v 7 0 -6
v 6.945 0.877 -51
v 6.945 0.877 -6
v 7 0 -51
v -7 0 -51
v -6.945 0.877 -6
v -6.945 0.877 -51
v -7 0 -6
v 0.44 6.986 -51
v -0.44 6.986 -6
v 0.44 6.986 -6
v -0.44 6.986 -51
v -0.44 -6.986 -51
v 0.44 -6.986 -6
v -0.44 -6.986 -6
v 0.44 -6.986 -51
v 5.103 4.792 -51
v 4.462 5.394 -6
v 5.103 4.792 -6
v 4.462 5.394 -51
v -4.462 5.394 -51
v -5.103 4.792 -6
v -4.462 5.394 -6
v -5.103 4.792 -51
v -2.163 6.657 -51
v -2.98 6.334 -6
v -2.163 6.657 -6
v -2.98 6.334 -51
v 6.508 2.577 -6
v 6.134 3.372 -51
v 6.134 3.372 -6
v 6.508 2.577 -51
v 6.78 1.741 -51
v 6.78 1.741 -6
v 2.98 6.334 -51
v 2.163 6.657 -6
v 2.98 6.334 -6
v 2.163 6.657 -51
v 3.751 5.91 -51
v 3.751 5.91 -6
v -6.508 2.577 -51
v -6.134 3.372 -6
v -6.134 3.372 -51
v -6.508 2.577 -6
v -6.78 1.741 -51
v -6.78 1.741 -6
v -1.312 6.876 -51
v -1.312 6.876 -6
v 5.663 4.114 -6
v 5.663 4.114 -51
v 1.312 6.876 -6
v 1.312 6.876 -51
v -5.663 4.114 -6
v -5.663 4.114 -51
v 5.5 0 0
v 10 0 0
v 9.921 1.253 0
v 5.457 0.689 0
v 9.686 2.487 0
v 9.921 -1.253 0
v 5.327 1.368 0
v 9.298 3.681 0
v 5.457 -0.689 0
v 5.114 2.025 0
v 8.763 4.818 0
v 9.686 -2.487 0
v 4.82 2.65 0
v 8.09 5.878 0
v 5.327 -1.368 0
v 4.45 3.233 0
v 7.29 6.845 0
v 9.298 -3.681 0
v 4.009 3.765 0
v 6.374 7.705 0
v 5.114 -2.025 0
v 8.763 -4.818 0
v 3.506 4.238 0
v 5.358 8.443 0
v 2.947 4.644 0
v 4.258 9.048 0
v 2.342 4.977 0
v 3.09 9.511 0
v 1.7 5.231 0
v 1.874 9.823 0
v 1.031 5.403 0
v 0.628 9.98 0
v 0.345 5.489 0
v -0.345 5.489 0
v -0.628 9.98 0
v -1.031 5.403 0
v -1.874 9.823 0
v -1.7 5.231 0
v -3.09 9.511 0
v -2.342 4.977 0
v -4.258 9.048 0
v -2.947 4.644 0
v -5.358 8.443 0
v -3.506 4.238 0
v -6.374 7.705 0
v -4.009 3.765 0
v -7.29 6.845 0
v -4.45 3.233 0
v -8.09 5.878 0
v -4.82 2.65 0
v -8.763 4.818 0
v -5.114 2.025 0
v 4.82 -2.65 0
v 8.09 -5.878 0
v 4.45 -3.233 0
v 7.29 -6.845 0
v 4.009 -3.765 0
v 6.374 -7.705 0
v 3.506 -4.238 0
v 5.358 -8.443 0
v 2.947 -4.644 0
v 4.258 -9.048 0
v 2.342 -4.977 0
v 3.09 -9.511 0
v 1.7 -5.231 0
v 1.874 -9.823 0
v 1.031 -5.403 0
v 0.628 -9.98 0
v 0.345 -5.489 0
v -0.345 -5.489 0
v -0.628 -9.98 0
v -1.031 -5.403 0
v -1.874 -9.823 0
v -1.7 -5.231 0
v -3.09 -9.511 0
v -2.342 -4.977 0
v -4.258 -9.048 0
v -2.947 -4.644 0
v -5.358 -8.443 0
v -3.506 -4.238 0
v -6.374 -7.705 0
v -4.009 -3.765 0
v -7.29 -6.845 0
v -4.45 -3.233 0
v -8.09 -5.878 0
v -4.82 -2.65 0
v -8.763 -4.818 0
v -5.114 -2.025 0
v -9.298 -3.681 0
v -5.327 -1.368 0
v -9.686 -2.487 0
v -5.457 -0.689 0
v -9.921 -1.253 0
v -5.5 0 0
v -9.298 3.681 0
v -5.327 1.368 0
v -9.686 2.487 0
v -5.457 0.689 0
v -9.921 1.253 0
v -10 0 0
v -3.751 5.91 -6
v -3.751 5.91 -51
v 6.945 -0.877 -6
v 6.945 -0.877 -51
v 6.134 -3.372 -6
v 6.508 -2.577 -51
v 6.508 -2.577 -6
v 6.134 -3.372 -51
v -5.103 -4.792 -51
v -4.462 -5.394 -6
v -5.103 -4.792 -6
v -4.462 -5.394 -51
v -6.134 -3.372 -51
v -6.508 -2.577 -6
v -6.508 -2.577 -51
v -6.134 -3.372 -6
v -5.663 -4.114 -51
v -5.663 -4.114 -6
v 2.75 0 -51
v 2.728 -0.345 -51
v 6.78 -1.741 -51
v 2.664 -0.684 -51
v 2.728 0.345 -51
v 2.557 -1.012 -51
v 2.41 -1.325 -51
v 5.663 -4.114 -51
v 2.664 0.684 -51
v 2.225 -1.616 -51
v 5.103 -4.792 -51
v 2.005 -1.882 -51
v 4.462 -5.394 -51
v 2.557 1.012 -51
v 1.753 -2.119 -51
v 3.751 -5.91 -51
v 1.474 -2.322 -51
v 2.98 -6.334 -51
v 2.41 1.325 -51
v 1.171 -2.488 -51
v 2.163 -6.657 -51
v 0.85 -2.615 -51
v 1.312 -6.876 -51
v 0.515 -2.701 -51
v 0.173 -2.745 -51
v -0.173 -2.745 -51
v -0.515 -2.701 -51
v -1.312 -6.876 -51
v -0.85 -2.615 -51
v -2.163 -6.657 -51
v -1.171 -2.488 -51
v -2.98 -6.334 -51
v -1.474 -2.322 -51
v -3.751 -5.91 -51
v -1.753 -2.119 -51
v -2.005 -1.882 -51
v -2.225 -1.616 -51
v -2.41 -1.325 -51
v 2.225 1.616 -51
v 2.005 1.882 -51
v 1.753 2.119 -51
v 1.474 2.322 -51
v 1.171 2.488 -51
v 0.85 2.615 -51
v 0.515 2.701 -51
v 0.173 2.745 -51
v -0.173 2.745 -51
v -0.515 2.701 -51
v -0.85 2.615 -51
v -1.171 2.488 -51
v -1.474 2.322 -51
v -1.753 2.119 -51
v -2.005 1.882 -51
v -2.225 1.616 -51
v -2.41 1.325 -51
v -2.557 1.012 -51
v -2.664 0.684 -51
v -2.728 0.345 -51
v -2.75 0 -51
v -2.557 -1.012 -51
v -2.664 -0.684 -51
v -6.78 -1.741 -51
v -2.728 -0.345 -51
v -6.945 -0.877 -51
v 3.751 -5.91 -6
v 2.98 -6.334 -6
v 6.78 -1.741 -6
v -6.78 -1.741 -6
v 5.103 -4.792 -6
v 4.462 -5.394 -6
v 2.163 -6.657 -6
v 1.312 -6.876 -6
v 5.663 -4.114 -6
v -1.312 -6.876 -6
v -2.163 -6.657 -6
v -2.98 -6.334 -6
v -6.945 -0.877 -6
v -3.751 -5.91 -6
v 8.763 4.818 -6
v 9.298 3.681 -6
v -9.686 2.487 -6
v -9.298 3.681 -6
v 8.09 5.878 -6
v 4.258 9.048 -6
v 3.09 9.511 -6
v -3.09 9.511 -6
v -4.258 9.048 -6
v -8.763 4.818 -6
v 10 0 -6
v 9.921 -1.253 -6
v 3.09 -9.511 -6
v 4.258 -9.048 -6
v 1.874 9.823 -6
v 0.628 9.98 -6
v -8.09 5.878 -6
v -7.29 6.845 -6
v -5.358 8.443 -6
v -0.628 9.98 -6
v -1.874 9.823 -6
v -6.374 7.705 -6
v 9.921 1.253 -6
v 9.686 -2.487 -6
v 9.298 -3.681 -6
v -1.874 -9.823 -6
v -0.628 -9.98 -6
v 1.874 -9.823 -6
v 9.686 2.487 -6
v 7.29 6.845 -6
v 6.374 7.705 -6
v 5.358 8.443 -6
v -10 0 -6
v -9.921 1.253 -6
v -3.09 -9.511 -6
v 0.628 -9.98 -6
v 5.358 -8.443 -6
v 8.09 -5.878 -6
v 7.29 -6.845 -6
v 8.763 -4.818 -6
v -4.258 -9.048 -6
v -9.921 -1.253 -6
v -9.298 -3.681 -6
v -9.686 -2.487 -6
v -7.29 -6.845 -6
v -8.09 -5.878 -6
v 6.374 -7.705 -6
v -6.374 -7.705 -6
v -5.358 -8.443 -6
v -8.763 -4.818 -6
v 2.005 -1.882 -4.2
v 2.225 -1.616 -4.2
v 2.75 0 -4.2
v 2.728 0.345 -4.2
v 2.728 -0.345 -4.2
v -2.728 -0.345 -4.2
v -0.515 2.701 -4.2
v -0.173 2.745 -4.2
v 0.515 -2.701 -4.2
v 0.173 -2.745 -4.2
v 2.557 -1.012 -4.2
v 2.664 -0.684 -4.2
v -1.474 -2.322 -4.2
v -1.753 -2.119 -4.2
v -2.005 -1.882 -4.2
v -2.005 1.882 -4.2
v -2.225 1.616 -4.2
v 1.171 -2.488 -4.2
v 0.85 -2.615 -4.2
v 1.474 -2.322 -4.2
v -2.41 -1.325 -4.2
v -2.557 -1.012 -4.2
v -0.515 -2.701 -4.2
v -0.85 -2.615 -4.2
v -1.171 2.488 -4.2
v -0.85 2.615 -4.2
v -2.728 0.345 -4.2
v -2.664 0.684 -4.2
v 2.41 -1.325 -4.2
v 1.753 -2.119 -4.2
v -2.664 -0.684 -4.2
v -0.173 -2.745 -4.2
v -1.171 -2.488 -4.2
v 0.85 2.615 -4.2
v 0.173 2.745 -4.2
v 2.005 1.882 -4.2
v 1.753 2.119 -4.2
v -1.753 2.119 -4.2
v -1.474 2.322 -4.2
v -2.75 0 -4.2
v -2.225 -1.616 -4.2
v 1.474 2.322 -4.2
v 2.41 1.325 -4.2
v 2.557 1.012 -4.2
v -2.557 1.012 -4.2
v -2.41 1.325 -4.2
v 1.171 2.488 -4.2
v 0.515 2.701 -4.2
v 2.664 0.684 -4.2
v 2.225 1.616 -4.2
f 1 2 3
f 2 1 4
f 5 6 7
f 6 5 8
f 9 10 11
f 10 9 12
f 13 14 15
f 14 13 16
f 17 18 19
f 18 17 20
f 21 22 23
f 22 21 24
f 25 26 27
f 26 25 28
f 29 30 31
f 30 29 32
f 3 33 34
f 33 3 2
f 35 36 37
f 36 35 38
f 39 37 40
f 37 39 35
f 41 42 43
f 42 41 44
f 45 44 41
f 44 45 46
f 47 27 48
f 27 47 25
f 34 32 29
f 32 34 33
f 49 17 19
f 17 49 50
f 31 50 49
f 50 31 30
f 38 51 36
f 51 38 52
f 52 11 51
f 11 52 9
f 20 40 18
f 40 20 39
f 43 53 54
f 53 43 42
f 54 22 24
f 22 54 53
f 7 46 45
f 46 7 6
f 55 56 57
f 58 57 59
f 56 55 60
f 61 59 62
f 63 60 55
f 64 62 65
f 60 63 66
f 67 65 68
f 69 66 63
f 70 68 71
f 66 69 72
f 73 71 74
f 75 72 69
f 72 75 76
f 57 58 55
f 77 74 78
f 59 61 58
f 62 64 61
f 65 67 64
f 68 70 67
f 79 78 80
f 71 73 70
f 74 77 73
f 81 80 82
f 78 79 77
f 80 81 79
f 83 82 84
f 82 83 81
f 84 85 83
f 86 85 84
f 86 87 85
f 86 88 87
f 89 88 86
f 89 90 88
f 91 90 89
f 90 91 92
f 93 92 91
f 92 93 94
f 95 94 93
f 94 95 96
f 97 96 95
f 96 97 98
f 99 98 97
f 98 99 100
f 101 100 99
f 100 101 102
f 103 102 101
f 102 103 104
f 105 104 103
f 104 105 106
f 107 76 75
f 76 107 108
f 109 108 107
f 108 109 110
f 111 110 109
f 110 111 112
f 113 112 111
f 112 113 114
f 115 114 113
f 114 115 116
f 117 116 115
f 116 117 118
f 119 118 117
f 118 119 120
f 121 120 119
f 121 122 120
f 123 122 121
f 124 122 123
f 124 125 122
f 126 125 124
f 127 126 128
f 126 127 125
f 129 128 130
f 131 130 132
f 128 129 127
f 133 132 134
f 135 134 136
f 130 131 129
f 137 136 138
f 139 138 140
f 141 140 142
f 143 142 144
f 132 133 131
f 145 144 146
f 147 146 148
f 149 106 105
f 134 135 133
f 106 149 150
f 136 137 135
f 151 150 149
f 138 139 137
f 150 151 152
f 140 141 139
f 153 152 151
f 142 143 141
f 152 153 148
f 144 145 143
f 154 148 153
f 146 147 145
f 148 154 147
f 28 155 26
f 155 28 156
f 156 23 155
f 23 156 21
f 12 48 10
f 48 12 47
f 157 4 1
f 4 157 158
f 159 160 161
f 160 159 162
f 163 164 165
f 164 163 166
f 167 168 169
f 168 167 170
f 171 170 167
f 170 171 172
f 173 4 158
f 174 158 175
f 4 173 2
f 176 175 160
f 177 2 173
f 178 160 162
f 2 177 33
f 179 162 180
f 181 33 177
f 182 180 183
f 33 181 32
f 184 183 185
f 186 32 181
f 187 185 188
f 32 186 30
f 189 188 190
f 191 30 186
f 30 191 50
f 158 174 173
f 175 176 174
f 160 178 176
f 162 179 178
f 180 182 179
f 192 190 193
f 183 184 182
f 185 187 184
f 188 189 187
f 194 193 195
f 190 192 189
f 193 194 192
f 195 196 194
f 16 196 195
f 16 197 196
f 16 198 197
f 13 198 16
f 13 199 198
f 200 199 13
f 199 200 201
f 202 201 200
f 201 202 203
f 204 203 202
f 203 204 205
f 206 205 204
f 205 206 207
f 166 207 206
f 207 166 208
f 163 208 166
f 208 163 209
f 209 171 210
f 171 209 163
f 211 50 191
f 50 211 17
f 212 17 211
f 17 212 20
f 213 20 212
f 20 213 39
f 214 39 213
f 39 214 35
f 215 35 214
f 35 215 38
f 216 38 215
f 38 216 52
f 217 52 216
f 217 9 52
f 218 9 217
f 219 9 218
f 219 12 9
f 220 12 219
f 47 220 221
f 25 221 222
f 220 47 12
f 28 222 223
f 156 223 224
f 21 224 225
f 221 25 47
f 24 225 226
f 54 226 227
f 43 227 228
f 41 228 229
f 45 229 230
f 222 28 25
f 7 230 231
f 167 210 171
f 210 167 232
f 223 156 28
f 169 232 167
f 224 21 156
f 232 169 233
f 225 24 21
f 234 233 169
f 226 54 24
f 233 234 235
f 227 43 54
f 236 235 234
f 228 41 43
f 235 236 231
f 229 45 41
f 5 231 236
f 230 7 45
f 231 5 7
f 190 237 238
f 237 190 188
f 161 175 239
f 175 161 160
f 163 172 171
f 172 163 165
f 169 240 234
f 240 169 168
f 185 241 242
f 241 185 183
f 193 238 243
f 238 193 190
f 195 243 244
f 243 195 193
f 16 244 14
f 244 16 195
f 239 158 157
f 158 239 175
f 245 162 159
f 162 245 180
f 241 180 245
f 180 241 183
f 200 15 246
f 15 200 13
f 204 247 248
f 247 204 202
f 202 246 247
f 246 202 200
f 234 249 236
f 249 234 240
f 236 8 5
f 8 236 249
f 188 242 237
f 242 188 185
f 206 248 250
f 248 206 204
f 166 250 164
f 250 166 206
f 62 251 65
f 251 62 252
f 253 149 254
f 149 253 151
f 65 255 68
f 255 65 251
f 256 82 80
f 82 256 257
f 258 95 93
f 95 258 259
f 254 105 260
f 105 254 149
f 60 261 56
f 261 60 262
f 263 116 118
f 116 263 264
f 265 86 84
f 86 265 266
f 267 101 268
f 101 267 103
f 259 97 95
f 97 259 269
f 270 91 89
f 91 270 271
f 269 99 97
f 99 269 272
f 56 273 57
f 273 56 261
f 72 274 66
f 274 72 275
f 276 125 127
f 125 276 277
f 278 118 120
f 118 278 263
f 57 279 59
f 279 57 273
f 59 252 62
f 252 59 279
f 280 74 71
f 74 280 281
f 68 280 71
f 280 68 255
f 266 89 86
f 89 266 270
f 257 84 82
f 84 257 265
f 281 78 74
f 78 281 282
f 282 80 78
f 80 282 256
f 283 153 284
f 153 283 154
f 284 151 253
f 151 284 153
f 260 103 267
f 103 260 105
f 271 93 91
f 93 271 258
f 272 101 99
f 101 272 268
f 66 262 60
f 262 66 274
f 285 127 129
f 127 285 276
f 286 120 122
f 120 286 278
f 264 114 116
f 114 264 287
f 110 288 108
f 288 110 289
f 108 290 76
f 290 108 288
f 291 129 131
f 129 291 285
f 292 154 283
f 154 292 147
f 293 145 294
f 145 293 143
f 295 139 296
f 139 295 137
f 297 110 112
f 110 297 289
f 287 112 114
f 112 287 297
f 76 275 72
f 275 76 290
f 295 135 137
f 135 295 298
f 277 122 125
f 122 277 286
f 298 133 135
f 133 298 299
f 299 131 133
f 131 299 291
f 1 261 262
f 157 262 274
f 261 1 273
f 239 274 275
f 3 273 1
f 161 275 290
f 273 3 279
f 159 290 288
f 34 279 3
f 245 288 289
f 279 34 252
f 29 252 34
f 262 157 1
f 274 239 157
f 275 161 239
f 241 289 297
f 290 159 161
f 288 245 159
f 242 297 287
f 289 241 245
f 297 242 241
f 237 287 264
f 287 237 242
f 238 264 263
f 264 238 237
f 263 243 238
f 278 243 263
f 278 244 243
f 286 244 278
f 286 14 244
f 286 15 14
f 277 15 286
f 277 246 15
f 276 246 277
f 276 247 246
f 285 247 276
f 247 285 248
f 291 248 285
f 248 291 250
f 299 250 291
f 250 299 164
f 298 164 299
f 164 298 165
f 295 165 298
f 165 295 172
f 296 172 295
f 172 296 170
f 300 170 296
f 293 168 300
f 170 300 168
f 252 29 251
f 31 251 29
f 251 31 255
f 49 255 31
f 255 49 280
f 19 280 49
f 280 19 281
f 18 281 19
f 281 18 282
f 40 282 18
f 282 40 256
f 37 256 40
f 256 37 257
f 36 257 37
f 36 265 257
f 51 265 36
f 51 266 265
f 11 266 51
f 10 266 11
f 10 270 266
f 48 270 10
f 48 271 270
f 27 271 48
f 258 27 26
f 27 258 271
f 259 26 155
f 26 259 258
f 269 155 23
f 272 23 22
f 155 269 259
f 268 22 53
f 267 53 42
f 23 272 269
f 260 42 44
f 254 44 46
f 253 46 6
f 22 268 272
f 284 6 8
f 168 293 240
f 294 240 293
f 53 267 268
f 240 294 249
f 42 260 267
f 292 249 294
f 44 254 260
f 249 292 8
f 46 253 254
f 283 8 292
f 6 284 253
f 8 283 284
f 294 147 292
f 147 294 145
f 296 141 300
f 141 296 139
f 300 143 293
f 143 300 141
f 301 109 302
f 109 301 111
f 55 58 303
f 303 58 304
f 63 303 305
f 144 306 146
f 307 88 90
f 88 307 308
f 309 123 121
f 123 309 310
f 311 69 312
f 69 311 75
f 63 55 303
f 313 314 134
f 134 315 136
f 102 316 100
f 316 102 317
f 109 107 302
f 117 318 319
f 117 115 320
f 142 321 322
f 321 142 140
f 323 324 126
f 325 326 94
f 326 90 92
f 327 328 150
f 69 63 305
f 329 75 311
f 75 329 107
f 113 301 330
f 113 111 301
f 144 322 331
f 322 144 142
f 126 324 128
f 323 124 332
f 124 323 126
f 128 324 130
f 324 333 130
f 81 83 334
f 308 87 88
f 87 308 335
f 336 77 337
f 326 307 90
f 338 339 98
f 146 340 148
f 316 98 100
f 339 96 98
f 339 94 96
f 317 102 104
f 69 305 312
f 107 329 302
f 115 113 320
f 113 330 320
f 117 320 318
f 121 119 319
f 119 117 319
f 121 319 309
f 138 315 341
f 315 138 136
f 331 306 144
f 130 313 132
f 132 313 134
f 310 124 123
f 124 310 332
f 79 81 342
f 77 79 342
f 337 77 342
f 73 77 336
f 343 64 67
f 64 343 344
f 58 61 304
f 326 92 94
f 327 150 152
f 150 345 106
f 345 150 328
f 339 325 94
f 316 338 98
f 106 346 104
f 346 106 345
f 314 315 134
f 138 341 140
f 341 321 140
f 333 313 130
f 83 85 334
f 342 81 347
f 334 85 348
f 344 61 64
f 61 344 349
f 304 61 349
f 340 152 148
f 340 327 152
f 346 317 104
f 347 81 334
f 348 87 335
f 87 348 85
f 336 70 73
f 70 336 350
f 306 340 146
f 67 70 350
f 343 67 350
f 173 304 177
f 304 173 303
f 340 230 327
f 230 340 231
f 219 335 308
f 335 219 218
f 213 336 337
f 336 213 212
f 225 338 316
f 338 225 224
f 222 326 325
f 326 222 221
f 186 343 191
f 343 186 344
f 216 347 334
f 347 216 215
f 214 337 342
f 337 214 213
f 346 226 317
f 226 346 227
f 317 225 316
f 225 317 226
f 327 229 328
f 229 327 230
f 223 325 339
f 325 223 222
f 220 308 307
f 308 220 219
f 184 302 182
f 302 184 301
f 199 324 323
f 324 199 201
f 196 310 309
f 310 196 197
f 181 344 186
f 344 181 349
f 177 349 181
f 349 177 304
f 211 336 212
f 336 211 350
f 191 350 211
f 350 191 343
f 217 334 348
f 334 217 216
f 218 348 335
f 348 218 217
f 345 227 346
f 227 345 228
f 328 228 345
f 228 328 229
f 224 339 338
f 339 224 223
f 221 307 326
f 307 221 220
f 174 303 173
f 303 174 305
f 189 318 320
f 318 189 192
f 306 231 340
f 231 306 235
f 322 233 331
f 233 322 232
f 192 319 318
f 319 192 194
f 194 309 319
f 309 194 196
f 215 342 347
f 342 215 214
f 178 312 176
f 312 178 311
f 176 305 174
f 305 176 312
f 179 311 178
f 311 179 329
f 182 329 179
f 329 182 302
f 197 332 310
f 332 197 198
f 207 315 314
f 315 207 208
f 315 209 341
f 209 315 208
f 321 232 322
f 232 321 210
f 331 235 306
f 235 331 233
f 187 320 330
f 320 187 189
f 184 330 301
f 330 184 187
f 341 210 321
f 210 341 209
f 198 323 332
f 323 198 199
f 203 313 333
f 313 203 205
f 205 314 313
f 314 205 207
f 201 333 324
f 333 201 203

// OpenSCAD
$fn = 50;


difference() {
	union() {
		translate(v = [0, 0, -51.0000000000]) {
			cylinder(h = 51, r = 7.0000000000);
		}
		translate(v = [0, 0, -6.0000000000]) {
			cylinder(h = 6, r = 10.0000000000);
		}
	}
	union() {
		translate(v = [0, 0, 0]) {
			rotate(a = [0, 0, 0]) {
				difference() {
					union() {
						#translate(v = [0, 0, -51.0000000000]) {
							cylinder(h = 51, r = 2.2500000000);
						}
						#translate(v = [0, 0, -4.2000000000]) {
							cylinder(h = 4.2000000000, r = 7.0000000000, r1 = 2.7500000000, r2 = 5.5000000000);
						}
						#translate(v = [0, 0, -51.0000000000]) {
							cylinder(h = 51, r = 2.7500000000);
						}
						#translate(v = [0, 0, -51.0000000000]) {
							cylinder(h = 51, r = 2.2500000000);
						}
					}
					union();
				}
			}
		}
	}
}
